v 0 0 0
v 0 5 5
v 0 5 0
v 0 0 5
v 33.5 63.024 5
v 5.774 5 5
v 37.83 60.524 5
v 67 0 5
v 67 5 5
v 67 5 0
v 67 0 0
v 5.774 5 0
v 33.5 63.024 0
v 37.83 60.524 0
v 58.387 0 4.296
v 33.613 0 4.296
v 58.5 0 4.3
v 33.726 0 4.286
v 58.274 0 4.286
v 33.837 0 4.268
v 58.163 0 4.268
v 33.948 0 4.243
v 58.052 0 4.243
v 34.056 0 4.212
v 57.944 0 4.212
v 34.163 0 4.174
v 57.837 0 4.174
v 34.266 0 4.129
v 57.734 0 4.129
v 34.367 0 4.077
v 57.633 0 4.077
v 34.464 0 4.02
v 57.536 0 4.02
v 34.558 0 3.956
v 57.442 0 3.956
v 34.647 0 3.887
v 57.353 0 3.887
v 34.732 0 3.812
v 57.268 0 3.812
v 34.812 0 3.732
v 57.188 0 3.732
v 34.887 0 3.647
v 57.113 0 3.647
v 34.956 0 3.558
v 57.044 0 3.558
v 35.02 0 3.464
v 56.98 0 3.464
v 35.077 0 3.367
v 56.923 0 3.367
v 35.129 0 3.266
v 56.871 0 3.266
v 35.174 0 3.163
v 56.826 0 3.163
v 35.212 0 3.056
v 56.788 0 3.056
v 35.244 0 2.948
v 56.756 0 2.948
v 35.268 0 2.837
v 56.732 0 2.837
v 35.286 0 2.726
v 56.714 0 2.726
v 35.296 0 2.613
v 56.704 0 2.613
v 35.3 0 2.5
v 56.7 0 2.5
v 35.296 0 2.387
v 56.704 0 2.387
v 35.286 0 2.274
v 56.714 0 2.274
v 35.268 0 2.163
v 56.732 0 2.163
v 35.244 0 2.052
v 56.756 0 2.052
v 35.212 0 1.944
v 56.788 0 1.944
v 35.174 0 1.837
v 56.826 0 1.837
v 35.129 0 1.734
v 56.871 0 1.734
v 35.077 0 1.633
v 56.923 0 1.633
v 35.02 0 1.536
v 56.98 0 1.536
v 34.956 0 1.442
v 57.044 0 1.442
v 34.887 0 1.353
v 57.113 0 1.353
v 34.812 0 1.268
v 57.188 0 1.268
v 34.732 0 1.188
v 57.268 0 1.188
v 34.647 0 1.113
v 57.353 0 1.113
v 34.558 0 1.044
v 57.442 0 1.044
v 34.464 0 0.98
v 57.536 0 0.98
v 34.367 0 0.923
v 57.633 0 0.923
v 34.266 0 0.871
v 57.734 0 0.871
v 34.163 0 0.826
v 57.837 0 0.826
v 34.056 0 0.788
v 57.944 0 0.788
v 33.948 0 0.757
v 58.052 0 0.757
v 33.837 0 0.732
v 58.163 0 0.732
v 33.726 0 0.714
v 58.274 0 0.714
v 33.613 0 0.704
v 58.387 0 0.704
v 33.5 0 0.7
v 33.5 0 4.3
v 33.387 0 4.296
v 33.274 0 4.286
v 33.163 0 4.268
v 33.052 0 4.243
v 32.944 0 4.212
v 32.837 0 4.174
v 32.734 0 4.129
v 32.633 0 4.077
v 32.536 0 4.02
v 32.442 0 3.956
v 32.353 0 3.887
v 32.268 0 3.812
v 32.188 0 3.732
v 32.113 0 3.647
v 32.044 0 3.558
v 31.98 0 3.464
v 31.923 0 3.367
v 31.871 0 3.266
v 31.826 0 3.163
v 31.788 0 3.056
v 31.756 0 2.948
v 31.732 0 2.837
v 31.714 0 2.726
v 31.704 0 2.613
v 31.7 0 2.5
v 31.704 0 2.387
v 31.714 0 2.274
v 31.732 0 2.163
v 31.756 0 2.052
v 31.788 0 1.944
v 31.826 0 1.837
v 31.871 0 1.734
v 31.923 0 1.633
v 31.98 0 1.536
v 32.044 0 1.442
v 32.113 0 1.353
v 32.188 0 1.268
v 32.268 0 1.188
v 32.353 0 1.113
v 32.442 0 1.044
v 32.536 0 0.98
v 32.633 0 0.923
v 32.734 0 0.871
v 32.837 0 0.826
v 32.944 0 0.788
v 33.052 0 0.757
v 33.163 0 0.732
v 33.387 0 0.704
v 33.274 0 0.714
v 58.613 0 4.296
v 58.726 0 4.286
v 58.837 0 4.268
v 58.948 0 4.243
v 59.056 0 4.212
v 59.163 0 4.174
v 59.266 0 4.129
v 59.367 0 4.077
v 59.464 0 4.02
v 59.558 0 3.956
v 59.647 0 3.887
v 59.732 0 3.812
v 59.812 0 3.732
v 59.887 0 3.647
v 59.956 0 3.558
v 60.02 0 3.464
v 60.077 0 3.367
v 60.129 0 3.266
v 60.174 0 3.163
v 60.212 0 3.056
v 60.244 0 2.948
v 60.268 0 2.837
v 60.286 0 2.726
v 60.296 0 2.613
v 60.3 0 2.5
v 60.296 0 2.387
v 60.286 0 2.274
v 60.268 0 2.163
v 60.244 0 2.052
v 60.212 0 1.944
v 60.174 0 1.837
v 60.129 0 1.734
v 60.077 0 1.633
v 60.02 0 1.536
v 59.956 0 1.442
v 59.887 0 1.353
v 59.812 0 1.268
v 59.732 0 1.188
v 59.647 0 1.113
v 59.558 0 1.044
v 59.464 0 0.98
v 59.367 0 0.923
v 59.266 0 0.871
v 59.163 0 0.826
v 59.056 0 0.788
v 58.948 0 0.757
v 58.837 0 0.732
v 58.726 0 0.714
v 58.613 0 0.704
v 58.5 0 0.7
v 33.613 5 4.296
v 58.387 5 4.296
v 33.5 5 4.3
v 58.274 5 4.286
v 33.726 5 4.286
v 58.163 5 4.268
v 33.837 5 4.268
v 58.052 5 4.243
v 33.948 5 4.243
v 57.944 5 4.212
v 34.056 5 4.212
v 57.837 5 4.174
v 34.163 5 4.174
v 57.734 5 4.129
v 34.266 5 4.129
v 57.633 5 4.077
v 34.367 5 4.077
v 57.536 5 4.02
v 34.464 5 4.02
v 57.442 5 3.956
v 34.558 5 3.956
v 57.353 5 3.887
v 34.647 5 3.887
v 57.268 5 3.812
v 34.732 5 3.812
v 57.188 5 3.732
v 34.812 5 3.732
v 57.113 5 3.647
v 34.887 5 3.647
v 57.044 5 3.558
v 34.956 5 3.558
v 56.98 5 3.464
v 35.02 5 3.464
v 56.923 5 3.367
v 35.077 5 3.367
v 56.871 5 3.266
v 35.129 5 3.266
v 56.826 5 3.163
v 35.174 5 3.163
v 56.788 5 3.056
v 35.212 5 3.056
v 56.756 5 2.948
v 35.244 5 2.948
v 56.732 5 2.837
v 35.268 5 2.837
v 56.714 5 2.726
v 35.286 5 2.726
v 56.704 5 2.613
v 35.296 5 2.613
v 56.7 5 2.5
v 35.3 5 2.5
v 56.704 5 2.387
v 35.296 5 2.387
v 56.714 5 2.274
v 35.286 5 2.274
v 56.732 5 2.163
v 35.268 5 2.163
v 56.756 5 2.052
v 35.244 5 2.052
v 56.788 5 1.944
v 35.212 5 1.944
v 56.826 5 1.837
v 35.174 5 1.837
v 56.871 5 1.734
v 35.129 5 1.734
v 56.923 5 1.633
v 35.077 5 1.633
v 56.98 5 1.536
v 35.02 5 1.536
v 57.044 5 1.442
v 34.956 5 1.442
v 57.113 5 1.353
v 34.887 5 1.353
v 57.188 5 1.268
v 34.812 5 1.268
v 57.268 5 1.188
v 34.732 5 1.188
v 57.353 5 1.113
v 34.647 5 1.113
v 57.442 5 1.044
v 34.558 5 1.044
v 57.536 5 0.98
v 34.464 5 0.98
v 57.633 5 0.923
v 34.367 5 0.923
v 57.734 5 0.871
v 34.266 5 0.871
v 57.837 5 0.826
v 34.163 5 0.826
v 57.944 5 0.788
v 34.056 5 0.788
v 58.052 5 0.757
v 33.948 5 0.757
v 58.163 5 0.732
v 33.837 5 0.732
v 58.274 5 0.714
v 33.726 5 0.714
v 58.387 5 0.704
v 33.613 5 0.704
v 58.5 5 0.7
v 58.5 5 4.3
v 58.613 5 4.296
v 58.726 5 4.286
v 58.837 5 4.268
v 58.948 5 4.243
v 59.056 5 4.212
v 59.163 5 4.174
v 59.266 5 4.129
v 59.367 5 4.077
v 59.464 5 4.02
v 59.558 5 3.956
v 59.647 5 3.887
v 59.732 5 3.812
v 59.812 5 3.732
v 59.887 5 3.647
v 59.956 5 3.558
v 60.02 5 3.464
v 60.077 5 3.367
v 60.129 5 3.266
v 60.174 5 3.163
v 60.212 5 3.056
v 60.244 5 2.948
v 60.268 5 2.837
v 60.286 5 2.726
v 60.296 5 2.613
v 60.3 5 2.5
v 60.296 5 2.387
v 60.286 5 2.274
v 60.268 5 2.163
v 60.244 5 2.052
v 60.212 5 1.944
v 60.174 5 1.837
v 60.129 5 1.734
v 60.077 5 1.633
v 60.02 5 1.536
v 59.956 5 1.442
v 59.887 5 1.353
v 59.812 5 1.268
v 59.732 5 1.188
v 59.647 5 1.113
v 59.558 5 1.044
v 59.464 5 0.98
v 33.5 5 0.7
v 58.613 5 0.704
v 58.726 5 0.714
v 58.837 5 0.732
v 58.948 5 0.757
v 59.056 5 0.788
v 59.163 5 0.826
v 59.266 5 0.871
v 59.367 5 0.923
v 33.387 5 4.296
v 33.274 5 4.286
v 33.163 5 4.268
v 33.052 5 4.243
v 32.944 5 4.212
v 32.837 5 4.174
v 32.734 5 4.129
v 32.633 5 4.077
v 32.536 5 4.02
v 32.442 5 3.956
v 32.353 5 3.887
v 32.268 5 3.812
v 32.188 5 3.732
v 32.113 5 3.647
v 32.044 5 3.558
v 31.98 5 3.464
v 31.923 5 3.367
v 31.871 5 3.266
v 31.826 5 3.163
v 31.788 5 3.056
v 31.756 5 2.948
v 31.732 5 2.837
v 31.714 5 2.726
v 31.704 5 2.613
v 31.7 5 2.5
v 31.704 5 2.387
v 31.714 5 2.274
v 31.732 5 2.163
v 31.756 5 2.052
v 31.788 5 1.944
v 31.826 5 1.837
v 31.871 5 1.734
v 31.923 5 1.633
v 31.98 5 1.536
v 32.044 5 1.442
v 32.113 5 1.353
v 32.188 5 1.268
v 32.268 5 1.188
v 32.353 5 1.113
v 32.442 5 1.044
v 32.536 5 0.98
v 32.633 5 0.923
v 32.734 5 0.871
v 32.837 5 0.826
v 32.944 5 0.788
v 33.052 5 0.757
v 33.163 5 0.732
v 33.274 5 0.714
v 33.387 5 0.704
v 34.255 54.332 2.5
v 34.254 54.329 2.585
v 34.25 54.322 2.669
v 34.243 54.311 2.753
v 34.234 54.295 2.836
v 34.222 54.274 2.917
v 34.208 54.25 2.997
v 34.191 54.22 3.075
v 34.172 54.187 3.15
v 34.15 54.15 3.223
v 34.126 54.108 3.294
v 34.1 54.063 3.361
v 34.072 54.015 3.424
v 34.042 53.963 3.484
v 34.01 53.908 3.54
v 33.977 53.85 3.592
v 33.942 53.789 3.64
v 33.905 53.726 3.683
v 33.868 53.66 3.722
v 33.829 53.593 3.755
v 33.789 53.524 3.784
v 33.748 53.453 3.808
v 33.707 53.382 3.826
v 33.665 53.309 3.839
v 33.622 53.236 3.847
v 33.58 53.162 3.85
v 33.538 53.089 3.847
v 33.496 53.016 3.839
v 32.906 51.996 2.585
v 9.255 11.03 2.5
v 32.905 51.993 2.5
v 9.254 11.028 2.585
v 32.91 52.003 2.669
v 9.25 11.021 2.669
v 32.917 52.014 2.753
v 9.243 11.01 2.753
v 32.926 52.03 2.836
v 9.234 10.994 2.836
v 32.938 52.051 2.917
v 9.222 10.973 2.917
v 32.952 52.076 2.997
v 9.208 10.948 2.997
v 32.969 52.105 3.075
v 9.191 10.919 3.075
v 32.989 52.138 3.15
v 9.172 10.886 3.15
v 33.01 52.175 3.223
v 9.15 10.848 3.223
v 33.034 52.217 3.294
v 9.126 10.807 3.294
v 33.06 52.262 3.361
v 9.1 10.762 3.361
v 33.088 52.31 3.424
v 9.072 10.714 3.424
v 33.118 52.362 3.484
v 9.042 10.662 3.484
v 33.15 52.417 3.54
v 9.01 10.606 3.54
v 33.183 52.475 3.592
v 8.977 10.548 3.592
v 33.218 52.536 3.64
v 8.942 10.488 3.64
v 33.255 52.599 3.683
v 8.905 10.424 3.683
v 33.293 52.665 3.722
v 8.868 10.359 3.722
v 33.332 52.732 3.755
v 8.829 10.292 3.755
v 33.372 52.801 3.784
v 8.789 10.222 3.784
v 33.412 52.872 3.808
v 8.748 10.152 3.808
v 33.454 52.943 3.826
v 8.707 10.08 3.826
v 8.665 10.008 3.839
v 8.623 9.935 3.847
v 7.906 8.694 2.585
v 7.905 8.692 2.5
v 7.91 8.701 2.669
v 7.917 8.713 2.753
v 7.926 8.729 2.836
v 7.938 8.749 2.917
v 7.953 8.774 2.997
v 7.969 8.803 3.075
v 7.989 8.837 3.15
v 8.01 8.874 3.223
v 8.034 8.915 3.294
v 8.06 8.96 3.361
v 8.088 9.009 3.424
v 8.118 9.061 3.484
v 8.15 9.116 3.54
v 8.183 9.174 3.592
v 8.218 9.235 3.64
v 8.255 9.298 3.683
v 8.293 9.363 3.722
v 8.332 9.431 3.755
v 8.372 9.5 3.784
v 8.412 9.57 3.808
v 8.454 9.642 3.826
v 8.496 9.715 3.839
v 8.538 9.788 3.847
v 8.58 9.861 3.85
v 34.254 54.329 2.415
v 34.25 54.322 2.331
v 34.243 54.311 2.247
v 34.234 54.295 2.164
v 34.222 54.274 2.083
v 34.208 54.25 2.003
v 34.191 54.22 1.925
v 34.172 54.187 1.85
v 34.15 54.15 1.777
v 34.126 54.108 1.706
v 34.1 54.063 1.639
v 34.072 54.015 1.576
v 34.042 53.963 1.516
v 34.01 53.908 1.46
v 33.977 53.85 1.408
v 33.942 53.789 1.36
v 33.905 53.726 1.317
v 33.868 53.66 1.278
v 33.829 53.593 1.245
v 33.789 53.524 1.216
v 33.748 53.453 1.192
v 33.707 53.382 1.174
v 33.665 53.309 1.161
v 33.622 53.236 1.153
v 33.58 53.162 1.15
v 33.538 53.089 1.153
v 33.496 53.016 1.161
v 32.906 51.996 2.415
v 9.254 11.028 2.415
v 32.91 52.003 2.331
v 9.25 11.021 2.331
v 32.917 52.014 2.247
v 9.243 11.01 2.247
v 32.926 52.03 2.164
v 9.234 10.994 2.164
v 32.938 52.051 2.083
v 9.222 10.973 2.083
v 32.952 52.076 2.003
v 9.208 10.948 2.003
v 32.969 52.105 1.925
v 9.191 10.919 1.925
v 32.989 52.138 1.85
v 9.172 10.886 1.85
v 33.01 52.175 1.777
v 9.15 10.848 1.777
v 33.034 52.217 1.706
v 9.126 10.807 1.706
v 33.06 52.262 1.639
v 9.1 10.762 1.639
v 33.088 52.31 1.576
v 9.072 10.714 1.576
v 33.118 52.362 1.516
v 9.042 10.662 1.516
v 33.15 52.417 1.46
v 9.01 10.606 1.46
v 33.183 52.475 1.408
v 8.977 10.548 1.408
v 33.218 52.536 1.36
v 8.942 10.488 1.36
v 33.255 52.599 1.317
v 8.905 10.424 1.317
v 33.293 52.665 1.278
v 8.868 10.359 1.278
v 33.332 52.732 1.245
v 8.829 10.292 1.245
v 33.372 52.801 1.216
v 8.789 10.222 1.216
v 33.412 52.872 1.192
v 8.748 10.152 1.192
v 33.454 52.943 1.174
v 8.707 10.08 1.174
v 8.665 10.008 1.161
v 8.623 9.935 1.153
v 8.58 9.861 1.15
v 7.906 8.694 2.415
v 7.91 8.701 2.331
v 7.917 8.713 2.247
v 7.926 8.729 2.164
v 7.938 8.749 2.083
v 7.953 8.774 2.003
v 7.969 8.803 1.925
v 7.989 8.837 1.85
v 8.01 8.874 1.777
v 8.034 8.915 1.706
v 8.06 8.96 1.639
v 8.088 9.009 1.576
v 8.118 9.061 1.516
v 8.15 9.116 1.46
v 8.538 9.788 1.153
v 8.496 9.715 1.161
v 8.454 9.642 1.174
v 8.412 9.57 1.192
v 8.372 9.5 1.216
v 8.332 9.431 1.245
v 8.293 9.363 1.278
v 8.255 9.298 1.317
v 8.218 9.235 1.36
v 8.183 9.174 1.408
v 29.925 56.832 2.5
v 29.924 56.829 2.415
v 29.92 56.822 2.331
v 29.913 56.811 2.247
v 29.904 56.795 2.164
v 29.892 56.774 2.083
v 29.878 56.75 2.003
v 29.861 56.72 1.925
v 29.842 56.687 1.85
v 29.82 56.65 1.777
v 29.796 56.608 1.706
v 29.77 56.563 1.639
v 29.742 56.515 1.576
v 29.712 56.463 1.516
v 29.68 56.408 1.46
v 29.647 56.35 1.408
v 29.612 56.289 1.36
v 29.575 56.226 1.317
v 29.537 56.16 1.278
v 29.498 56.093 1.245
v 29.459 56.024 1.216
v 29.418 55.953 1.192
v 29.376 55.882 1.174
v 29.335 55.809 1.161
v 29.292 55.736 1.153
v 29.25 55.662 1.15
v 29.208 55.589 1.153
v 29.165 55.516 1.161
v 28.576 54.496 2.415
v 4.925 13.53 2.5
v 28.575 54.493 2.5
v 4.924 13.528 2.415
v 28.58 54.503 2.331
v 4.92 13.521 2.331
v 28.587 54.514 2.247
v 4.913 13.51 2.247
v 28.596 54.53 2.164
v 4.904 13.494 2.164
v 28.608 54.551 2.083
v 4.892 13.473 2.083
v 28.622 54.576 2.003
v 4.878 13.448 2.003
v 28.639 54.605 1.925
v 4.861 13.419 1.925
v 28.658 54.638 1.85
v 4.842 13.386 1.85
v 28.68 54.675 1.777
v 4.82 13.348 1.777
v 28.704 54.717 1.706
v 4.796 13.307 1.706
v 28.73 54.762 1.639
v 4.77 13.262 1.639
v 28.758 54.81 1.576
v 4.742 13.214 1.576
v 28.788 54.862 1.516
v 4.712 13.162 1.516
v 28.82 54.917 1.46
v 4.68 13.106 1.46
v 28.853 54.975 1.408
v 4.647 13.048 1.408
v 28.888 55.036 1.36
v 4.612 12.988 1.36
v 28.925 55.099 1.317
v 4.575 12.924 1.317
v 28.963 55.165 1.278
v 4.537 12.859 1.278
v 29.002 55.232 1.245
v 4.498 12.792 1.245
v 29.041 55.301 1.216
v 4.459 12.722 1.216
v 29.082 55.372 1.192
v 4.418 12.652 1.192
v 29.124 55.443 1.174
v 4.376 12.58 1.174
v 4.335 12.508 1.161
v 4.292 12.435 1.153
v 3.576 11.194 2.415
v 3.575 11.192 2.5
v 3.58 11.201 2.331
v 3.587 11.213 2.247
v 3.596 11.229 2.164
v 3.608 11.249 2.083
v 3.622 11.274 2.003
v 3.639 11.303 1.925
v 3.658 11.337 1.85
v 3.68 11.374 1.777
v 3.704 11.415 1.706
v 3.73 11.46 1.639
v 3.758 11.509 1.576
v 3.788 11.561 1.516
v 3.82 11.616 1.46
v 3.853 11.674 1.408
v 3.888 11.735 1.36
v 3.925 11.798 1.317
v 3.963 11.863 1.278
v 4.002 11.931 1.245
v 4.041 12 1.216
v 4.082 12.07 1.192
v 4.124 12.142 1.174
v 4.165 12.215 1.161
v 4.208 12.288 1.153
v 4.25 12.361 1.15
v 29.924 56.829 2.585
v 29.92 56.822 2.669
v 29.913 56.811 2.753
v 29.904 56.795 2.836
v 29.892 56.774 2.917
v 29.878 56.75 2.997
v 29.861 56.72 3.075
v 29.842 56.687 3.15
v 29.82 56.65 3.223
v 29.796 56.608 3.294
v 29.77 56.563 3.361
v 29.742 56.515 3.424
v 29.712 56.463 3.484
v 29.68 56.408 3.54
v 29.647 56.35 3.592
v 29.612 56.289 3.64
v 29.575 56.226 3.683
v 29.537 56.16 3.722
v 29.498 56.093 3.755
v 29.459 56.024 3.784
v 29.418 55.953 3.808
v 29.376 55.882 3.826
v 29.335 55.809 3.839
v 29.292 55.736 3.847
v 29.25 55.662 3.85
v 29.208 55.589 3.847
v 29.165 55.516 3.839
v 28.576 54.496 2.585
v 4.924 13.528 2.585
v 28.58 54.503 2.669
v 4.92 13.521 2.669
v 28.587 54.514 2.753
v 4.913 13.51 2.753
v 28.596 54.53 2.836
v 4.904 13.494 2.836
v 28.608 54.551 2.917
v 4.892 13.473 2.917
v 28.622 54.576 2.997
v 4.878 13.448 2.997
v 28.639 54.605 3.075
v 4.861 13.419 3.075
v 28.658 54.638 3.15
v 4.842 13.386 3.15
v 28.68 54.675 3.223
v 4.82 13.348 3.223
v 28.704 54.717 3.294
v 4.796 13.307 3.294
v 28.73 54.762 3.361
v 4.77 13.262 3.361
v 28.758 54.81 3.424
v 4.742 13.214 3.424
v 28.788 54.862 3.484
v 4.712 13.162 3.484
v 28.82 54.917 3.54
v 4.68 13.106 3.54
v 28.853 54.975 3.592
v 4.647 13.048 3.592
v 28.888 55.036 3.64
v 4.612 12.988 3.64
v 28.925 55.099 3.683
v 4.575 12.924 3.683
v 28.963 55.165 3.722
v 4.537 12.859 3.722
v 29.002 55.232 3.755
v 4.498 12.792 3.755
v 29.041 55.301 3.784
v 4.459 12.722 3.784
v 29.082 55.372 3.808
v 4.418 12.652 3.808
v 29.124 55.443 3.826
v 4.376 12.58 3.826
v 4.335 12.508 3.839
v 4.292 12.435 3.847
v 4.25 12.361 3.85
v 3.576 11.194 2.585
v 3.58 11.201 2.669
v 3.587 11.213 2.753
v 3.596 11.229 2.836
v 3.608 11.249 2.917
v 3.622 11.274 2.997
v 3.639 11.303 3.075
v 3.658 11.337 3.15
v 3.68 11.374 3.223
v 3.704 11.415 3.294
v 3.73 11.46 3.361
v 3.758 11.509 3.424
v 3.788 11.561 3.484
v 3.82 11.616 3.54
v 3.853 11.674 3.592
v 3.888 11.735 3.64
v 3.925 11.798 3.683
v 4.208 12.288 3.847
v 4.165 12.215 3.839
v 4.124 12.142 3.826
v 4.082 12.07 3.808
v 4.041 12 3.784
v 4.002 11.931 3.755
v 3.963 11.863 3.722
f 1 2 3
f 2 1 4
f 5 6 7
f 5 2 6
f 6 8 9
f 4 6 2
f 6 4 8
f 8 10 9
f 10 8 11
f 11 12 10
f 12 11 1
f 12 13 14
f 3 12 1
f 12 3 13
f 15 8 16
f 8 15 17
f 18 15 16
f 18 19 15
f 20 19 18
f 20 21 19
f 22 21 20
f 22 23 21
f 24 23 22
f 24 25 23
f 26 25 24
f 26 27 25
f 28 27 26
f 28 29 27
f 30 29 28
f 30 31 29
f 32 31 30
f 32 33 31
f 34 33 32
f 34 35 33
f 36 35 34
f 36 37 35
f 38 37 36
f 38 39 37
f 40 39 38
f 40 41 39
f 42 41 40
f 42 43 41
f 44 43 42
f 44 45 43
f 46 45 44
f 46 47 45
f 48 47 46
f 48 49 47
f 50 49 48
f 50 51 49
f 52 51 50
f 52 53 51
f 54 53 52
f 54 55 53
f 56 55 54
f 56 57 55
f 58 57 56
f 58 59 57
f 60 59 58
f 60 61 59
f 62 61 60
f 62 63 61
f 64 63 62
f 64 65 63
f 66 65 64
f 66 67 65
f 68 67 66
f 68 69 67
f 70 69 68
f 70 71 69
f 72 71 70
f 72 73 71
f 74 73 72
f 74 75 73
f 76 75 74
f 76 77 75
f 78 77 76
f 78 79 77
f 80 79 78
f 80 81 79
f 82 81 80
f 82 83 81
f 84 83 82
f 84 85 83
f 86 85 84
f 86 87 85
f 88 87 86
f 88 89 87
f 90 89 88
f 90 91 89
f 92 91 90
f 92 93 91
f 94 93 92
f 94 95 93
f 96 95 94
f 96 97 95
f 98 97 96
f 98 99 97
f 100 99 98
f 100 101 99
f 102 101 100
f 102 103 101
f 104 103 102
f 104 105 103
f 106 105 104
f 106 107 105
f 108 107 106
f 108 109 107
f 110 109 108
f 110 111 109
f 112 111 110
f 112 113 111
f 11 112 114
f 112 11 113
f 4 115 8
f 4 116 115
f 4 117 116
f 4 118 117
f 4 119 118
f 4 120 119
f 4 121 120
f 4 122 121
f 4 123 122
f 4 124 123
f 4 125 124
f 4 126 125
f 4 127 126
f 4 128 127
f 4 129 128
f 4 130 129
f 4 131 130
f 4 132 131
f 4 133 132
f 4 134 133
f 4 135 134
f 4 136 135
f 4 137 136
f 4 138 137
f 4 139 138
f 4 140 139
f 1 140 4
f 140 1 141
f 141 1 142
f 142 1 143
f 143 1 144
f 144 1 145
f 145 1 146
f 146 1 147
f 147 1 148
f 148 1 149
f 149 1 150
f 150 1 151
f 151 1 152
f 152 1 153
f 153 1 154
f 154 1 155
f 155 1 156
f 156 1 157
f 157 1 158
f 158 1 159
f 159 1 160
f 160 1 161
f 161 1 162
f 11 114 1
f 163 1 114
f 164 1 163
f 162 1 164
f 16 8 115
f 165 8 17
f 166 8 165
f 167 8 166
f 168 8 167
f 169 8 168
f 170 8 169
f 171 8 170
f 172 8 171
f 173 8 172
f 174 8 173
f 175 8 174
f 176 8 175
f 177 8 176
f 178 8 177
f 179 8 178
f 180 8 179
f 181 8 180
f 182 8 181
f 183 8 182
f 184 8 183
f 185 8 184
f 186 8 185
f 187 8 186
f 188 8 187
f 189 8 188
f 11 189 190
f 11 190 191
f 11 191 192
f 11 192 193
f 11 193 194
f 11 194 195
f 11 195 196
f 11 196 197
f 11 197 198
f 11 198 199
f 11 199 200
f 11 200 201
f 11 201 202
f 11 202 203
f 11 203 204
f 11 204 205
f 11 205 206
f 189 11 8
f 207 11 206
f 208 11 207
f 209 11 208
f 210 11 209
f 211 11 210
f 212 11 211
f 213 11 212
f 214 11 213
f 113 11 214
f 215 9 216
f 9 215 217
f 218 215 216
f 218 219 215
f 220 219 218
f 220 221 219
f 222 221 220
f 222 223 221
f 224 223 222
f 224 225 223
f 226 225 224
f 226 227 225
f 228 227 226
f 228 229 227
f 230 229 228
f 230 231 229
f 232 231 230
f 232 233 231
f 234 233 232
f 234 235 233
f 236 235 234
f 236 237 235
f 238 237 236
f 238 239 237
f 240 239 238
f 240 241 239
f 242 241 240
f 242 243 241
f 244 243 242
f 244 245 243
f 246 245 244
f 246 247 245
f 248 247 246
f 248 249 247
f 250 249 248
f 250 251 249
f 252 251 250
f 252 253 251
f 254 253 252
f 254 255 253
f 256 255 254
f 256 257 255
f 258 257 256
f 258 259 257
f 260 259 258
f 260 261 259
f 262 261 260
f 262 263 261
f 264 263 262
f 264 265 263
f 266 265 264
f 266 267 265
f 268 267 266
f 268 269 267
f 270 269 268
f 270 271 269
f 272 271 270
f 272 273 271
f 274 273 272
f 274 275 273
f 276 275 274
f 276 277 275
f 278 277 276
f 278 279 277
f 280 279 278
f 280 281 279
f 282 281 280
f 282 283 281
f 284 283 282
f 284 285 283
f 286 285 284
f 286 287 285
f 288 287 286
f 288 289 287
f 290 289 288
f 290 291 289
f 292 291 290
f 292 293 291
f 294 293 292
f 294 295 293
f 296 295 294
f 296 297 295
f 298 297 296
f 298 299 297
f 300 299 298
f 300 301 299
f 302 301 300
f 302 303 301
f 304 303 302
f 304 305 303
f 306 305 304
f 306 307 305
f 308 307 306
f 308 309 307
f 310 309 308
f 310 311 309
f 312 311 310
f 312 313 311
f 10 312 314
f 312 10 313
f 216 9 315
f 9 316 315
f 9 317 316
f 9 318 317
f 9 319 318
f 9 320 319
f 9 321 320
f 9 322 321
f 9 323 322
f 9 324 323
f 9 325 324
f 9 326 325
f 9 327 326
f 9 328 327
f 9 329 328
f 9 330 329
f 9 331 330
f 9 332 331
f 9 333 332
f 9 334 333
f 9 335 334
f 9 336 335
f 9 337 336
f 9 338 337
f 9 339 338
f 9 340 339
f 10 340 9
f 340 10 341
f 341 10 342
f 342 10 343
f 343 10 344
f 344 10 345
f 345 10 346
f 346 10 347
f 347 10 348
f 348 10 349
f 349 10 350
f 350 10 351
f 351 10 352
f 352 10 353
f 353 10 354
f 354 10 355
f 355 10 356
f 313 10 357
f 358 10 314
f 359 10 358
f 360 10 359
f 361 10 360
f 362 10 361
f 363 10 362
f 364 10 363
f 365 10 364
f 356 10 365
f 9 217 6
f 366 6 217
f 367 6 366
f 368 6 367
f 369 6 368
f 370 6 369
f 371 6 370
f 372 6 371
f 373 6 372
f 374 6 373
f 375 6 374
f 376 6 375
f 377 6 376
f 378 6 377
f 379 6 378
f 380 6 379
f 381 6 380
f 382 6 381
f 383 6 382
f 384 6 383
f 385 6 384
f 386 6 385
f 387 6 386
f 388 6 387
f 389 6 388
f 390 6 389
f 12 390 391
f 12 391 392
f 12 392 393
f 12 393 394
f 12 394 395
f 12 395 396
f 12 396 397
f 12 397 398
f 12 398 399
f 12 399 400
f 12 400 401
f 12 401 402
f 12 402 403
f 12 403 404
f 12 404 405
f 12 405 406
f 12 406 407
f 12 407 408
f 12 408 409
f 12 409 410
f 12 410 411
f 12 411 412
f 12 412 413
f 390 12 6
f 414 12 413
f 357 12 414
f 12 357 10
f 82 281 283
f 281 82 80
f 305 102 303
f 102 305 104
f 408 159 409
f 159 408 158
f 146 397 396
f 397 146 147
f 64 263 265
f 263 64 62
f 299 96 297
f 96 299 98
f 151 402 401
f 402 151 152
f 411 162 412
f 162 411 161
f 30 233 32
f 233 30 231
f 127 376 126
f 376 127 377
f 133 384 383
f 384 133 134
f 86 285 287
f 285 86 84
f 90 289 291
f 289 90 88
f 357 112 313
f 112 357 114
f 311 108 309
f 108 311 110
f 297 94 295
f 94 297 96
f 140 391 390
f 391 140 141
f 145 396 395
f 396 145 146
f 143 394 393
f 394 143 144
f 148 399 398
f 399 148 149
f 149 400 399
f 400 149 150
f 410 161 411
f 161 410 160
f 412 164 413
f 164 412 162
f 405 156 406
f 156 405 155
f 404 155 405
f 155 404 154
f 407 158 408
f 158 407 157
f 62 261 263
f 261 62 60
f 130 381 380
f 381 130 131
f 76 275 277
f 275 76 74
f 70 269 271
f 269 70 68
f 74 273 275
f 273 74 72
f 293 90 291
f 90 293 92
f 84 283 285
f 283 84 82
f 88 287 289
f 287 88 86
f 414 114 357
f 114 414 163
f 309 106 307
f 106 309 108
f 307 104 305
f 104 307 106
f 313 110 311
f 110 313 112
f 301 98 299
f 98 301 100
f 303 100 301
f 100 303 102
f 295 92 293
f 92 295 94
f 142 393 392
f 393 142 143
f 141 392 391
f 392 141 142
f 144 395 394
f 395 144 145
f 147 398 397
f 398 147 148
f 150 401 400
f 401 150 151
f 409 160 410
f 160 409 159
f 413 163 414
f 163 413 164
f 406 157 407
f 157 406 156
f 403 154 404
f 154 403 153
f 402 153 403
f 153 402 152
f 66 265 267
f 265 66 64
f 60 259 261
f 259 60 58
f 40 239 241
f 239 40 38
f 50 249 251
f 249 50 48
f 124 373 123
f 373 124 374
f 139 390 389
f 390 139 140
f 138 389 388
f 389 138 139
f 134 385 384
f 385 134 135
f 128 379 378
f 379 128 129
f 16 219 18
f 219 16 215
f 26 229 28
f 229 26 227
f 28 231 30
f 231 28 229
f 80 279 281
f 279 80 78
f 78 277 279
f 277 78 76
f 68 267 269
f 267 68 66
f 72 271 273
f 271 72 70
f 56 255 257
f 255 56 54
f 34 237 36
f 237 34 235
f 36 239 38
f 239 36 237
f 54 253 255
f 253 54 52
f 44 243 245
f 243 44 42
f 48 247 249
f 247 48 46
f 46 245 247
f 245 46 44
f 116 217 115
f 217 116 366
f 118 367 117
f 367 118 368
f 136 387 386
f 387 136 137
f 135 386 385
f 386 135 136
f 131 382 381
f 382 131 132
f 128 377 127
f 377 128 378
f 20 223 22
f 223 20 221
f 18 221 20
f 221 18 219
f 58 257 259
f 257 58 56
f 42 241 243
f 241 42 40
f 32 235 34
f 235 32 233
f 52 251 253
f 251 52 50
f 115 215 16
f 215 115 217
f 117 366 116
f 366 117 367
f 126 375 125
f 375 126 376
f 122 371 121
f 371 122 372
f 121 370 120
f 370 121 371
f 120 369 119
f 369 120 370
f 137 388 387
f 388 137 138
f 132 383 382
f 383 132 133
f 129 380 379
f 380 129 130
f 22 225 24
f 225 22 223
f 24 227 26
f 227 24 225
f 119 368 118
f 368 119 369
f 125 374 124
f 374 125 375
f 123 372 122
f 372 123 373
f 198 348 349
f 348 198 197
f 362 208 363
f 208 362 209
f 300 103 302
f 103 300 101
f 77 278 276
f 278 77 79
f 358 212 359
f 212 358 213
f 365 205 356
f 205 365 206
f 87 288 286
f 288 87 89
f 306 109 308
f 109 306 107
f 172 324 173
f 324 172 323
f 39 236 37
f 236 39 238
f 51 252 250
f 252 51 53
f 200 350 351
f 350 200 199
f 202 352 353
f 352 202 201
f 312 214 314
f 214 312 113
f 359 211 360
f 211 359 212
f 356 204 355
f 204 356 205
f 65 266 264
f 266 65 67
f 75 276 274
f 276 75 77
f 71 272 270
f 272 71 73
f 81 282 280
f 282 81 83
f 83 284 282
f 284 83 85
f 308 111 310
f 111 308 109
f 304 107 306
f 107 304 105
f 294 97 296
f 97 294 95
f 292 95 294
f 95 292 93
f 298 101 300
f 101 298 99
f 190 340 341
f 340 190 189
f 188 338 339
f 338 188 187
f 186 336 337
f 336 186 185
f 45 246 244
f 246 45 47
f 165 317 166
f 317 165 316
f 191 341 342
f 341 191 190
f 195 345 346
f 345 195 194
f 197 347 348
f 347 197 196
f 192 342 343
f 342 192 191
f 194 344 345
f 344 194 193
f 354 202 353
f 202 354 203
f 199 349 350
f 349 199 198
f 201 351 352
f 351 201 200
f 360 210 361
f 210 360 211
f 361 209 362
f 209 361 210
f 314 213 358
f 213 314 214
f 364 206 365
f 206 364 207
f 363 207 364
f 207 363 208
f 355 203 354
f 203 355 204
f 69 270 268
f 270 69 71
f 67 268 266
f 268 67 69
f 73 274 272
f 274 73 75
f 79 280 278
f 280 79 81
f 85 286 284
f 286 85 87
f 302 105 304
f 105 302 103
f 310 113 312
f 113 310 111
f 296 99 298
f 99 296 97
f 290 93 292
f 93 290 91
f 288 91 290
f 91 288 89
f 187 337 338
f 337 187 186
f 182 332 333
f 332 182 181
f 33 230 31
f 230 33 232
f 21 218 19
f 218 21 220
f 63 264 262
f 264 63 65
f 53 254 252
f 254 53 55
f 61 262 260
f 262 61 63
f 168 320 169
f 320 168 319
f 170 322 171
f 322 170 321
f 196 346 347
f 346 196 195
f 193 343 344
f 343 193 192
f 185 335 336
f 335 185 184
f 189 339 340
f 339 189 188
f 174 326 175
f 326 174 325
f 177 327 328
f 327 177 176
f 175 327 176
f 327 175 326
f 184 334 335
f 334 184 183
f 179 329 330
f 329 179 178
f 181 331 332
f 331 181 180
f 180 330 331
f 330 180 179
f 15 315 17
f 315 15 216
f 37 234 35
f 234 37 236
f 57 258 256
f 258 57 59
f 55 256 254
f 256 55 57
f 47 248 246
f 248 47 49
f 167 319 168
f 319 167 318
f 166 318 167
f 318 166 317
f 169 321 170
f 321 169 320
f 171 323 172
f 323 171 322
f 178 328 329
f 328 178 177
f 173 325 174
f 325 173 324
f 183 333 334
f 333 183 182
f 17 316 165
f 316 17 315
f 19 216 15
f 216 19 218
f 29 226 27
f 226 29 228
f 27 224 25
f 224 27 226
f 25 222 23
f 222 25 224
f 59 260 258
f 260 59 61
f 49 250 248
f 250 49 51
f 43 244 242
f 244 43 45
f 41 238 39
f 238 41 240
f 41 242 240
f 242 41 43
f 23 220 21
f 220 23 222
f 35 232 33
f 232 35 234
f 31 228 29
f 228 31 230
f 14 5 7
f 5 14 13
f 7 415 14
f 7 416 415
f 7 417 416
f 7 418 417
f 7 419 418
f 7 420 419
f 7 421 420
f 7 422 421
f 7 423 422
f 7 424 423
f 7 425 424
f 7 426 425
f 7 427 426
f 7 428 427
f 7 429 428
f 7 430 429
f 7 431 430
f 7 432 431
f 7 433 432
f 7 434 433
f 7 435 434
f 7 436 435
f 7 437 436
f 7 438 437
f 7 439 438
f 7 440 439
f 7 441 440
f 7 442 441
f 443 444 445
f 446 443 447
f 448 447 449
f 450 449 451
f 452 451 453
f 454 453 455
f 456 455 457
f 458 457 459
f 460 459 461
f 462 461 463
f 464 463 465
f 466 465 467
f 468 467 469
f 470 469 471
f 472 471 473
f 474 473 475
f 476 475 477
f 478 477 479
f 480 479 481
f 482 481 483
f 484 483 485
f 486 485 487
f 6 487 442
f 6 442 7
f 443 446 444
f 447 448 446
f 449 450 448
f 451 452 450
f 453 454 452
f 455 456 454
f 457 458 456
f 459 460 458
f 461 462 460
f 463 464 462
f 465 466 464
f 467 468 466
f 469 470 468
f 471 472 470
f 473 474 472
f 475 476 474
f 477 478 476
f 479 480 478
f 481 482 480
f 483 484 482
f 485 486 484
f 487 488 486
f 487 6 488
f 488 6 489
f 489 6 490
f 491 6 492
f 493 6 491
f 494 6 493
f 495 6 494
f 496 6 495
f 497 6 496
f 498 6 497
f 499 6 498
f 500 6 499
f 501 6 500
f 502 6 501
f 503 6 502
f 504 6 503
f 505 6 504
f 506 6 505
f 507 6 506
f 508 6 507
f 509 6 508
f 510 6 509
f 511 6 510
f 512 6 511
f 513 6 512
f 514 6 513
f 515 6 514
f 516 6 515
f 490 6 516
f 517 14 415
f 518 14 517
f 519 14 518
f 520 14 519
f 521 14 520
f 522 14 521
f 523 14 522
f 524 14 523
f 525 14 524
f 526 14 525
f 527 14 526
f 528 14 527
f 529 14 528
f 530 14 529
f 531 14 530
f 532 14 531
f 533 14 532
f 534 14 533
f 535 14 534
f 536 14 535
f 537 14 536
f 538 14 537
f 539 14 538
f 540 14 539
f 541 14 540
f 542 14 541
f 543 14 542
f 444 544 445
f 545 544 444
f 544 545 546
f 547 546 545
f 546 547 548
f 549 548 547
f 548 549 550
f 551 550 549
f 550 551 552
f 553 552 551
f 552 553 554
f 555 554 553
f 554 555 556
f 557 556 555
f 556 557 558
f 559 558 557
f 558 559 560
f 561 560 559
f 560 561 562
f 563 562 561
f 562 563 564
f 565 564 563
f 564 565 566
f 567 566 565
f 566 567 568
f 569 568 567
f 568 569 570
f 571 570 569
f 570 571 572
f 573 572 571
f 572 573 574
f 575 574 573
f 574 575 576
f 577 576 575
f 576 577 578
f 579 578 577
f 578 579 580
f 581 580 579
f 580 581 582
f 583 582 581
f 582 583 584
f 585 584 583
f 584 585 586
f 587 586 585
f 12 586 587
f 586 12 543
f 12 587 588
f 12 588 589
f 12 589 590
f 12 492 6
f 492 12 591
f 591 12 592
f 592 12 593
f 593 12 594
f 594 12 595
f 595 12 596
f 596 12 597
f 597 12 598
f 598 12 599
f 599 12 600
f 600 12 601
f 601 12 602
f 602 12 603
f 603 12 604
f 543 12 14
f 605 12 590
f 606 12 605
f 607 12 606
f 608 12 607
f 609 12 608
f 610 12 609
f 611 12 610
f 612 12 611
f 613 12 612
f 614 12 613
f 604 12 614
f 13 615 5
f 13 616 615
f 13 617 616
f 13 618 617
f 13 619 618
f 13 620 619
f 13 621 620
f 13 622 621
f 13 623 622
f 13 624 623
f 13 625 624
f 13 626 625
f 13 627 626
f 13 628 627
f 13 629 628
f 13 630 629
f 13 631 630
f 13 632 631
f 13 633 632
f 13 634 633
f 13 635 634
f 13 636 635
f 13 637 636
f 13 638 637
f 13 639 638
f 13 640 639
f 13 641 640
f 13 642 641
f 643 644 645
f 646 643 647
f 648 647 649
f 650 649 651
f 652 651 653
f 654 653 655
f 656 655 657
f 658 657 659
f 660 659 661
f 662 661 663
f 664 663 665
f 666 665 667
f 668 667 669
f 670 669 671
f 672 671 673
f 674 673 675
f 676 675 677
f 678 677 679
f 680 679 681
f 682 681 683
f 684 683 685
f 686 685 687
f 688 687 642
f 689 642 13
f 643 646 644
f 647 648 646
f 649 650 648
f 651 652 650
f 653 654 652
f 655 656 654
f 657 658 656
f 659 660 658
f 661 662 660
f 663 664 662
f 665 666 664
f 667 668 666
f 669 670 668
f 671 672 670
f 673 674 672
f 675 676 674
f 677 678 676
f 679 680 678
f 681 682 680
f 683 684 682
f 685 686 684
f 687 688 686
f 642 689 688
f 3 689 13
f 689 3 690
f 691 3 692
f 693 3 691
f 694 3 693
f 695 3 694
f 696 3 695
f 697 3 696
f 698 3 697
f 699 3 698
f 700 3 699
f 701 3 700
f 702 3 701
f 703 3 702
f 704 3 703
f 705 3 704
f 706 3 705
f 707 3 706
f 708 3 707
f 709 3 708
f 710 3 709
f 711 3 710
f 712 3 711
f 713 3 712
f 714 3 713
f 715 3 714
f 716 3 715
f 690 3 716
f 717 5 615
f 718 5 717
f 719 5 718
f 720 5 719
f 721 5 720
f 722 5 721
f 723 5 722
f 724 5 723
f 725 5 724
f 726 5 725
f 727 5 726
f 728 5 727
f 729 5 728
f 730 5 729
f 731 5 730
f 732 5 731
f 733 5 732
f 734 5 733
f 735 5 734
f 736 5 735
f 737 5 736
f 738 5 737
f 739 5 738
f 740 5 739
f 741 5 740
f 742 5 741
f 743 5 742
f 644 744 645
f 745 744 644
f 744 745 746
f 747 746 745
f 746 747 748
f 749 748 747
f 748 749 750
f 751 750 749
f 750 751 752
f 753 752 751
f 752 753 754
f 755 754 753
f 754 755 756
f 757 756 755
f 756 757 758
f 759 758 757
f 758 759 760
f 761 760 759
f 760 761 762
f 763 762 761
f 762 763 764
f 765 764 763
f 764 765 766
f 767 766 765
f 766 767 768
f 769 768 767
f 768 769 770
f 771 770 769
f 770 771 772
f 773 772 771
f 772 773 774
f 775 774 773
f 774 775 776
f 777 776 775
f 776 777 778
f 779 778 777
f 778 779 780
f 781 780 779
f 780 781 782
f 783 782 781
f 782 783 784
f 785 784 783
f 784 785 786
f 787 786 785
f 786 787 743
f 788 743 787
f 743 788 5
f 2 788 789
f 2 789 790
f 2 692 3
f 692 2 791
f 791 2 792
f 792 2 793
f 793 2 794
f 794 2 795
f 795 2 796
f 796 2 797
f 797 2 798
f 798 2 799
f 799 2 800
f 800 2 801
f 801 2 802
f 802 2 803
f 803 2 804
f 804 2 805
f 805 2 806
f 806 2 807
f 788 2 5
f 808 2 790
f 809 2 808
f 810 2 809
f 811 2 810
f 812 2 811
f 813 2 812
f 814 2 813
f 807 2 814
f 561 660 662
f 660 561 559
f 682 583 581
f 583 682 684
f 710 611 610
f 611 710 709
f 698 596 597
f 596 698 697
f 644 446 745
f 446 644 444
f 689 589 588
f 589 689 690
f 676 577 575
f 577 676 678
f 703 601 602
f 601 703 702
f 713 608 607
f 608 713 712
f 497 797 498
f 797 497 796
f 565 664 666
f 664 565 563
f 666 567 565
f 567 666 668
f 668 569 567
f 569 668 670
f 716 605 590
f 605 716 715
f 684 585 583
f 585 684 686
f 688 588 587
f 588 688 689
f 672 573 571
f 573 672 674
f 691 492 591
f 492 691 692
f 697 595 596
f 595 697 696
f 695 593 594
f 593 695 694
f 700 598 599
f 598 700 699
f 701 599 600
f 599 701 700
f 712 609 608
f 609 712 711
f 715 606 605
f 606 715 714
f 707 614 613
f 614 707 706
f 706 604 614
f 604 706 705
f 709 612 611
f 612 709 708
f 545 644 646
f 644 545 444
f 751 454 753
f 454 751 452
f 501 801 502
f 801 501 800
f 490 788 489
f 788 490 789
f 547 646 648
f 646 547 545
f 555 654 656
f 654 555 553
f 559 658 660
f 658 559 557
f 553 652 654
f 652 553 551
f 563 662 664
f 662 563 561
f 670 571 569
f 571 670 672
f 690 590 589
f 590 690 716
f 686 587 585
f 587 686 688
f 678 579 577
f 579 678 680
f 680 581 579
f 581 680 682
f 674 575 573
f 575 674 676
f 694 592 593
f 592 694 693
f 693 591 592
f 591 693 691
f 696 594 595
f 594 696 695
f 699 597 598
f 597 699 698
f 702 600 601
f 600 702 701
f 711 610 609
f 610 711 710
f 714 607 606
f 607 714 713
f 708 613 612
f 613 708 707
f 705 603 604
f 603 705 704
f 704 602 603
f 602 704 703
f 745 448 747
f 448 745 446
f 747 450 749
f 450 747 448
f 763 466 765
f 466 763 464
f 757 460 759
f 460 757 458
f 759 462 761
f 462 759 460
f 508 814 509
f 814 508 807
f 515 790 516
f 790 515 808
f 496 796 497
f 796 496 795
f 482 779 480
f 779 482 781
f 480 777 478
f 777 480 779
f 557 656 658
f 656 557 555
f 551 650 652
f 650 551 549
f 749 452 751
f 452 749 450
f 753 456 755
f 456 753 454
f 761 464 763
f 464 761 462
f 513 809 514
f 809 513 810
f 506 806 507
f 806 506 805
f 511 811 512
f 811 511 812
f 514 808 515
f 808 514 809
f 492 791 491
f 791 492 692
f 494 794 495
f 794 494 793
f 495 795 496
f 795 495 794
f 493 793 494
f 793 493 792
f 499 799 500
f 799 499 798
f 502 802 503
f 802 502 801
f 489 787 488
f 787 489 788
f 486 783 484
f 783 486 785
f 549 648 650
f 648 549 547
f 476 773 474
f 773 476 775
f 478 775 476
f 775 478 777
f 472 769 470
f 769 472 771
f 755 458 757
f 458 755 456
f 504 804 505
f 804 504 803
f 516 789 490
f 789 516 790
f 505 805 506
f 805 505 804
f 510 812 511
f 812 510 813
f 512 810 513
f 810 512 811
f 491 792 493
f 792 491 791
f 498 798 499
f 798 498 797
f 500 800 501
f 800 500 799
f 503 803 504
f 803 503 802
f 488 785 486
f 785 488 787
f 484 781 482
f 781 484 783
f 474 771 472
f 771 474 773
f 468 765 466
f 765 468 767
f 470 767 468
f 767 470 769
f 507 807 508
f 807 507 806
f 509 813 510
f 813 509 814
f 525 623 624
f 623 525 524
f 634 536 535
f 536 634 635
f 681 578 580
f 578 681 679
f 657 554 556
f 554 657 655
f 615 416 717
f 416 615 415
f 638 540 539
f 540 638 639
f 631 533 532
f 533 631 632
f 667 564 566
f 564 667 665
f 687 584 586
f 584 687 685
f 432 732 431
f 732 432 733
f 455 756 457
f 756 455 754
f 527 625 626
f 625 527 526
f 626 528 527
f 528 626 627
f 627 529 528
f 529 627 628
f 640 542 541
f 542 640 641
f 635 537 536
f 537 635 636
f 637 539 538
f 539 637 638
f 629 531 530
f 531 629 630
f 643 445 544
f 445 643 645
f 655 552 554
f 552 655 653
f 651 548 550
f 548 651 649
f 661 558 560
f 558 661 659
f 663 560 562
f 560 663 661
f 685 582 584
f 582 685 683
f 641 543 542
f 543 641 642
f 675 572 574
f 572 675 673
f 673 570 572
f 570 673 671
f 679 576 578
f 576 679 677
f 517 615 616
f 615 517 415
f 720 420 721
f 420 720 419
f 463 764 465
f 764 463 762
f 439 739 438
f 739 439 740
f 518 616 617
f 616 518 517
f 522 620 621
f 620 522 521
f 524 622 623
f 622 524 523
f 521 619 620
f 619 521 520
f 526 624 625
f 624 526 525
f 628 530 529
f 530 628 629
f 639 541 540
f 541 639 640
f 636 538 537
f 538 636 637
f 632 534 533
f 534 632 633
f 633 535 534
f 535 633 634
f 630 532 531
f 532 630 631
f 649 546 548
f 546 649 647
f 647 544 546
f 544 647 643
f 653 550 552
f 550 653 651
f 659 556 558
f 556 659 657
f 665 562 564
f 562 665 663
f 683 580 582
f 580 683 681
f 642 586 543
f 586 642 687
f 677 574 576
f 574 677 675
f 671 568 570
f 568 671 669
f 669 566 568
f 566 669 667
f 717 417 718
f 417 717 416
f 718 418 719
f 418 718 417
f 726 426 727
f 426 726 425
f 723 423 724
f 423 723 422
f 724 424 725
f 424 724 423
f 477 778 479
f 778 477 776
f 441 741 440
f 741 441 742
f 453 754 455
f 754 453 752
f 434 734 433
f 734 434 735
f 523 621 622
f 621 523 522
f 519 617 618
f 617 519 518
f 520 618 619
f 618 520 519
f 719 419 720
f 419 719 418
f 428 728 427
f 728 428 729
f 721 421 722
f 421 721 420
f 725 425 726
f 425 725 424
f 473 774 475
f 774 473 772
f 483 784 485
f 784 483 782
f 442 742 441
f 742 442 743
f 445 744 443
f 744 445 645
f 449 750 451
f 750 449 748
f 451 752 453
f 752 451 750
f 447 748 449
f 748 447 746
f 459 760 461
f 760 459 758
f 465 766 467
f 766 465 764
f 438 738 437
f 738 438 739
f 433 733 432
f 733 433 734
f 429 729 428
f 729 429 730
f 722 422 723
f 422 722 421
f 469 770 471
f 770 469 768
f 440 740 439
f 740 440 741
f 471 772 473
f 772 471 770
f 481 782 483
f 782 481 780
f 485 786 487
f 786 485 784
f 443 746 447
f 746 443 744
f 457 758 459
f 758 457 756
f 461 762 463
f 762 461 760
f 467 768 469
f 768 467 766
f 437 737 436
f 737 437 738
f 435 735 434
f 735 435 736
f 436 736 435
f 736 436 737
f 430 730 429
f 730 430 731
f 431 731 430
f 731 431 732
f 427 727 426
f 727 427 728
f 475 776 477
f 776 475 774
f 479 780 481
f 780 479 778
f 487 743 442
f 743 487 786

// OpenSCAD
W=5;
L=67;
$fn=100;

difference()
{   cube([L,W,W]);
    translate([L/2,-1,W/2]) rotate([-90,0,0]) cylinder(d=3.6,h=10);
    translate([(L-50)/2+50,-1,W/2]) rotate([-90,0,0]) cylinder(d=3.6,h=10);
}
translate([W*sin(60),W/2,0])  
rotate([0,0,60]) 
difference()
{   cube([L,W,W]);
    translate([(L-50)/2,-1,W/2]) rotate([-90,0,0]) cylinder(d=2.7,h=10);
    translate([(L-50)/2+50,-1,W/2]) rotate([-90,0,0]) cylinder(d=2.7,h=10);
}
